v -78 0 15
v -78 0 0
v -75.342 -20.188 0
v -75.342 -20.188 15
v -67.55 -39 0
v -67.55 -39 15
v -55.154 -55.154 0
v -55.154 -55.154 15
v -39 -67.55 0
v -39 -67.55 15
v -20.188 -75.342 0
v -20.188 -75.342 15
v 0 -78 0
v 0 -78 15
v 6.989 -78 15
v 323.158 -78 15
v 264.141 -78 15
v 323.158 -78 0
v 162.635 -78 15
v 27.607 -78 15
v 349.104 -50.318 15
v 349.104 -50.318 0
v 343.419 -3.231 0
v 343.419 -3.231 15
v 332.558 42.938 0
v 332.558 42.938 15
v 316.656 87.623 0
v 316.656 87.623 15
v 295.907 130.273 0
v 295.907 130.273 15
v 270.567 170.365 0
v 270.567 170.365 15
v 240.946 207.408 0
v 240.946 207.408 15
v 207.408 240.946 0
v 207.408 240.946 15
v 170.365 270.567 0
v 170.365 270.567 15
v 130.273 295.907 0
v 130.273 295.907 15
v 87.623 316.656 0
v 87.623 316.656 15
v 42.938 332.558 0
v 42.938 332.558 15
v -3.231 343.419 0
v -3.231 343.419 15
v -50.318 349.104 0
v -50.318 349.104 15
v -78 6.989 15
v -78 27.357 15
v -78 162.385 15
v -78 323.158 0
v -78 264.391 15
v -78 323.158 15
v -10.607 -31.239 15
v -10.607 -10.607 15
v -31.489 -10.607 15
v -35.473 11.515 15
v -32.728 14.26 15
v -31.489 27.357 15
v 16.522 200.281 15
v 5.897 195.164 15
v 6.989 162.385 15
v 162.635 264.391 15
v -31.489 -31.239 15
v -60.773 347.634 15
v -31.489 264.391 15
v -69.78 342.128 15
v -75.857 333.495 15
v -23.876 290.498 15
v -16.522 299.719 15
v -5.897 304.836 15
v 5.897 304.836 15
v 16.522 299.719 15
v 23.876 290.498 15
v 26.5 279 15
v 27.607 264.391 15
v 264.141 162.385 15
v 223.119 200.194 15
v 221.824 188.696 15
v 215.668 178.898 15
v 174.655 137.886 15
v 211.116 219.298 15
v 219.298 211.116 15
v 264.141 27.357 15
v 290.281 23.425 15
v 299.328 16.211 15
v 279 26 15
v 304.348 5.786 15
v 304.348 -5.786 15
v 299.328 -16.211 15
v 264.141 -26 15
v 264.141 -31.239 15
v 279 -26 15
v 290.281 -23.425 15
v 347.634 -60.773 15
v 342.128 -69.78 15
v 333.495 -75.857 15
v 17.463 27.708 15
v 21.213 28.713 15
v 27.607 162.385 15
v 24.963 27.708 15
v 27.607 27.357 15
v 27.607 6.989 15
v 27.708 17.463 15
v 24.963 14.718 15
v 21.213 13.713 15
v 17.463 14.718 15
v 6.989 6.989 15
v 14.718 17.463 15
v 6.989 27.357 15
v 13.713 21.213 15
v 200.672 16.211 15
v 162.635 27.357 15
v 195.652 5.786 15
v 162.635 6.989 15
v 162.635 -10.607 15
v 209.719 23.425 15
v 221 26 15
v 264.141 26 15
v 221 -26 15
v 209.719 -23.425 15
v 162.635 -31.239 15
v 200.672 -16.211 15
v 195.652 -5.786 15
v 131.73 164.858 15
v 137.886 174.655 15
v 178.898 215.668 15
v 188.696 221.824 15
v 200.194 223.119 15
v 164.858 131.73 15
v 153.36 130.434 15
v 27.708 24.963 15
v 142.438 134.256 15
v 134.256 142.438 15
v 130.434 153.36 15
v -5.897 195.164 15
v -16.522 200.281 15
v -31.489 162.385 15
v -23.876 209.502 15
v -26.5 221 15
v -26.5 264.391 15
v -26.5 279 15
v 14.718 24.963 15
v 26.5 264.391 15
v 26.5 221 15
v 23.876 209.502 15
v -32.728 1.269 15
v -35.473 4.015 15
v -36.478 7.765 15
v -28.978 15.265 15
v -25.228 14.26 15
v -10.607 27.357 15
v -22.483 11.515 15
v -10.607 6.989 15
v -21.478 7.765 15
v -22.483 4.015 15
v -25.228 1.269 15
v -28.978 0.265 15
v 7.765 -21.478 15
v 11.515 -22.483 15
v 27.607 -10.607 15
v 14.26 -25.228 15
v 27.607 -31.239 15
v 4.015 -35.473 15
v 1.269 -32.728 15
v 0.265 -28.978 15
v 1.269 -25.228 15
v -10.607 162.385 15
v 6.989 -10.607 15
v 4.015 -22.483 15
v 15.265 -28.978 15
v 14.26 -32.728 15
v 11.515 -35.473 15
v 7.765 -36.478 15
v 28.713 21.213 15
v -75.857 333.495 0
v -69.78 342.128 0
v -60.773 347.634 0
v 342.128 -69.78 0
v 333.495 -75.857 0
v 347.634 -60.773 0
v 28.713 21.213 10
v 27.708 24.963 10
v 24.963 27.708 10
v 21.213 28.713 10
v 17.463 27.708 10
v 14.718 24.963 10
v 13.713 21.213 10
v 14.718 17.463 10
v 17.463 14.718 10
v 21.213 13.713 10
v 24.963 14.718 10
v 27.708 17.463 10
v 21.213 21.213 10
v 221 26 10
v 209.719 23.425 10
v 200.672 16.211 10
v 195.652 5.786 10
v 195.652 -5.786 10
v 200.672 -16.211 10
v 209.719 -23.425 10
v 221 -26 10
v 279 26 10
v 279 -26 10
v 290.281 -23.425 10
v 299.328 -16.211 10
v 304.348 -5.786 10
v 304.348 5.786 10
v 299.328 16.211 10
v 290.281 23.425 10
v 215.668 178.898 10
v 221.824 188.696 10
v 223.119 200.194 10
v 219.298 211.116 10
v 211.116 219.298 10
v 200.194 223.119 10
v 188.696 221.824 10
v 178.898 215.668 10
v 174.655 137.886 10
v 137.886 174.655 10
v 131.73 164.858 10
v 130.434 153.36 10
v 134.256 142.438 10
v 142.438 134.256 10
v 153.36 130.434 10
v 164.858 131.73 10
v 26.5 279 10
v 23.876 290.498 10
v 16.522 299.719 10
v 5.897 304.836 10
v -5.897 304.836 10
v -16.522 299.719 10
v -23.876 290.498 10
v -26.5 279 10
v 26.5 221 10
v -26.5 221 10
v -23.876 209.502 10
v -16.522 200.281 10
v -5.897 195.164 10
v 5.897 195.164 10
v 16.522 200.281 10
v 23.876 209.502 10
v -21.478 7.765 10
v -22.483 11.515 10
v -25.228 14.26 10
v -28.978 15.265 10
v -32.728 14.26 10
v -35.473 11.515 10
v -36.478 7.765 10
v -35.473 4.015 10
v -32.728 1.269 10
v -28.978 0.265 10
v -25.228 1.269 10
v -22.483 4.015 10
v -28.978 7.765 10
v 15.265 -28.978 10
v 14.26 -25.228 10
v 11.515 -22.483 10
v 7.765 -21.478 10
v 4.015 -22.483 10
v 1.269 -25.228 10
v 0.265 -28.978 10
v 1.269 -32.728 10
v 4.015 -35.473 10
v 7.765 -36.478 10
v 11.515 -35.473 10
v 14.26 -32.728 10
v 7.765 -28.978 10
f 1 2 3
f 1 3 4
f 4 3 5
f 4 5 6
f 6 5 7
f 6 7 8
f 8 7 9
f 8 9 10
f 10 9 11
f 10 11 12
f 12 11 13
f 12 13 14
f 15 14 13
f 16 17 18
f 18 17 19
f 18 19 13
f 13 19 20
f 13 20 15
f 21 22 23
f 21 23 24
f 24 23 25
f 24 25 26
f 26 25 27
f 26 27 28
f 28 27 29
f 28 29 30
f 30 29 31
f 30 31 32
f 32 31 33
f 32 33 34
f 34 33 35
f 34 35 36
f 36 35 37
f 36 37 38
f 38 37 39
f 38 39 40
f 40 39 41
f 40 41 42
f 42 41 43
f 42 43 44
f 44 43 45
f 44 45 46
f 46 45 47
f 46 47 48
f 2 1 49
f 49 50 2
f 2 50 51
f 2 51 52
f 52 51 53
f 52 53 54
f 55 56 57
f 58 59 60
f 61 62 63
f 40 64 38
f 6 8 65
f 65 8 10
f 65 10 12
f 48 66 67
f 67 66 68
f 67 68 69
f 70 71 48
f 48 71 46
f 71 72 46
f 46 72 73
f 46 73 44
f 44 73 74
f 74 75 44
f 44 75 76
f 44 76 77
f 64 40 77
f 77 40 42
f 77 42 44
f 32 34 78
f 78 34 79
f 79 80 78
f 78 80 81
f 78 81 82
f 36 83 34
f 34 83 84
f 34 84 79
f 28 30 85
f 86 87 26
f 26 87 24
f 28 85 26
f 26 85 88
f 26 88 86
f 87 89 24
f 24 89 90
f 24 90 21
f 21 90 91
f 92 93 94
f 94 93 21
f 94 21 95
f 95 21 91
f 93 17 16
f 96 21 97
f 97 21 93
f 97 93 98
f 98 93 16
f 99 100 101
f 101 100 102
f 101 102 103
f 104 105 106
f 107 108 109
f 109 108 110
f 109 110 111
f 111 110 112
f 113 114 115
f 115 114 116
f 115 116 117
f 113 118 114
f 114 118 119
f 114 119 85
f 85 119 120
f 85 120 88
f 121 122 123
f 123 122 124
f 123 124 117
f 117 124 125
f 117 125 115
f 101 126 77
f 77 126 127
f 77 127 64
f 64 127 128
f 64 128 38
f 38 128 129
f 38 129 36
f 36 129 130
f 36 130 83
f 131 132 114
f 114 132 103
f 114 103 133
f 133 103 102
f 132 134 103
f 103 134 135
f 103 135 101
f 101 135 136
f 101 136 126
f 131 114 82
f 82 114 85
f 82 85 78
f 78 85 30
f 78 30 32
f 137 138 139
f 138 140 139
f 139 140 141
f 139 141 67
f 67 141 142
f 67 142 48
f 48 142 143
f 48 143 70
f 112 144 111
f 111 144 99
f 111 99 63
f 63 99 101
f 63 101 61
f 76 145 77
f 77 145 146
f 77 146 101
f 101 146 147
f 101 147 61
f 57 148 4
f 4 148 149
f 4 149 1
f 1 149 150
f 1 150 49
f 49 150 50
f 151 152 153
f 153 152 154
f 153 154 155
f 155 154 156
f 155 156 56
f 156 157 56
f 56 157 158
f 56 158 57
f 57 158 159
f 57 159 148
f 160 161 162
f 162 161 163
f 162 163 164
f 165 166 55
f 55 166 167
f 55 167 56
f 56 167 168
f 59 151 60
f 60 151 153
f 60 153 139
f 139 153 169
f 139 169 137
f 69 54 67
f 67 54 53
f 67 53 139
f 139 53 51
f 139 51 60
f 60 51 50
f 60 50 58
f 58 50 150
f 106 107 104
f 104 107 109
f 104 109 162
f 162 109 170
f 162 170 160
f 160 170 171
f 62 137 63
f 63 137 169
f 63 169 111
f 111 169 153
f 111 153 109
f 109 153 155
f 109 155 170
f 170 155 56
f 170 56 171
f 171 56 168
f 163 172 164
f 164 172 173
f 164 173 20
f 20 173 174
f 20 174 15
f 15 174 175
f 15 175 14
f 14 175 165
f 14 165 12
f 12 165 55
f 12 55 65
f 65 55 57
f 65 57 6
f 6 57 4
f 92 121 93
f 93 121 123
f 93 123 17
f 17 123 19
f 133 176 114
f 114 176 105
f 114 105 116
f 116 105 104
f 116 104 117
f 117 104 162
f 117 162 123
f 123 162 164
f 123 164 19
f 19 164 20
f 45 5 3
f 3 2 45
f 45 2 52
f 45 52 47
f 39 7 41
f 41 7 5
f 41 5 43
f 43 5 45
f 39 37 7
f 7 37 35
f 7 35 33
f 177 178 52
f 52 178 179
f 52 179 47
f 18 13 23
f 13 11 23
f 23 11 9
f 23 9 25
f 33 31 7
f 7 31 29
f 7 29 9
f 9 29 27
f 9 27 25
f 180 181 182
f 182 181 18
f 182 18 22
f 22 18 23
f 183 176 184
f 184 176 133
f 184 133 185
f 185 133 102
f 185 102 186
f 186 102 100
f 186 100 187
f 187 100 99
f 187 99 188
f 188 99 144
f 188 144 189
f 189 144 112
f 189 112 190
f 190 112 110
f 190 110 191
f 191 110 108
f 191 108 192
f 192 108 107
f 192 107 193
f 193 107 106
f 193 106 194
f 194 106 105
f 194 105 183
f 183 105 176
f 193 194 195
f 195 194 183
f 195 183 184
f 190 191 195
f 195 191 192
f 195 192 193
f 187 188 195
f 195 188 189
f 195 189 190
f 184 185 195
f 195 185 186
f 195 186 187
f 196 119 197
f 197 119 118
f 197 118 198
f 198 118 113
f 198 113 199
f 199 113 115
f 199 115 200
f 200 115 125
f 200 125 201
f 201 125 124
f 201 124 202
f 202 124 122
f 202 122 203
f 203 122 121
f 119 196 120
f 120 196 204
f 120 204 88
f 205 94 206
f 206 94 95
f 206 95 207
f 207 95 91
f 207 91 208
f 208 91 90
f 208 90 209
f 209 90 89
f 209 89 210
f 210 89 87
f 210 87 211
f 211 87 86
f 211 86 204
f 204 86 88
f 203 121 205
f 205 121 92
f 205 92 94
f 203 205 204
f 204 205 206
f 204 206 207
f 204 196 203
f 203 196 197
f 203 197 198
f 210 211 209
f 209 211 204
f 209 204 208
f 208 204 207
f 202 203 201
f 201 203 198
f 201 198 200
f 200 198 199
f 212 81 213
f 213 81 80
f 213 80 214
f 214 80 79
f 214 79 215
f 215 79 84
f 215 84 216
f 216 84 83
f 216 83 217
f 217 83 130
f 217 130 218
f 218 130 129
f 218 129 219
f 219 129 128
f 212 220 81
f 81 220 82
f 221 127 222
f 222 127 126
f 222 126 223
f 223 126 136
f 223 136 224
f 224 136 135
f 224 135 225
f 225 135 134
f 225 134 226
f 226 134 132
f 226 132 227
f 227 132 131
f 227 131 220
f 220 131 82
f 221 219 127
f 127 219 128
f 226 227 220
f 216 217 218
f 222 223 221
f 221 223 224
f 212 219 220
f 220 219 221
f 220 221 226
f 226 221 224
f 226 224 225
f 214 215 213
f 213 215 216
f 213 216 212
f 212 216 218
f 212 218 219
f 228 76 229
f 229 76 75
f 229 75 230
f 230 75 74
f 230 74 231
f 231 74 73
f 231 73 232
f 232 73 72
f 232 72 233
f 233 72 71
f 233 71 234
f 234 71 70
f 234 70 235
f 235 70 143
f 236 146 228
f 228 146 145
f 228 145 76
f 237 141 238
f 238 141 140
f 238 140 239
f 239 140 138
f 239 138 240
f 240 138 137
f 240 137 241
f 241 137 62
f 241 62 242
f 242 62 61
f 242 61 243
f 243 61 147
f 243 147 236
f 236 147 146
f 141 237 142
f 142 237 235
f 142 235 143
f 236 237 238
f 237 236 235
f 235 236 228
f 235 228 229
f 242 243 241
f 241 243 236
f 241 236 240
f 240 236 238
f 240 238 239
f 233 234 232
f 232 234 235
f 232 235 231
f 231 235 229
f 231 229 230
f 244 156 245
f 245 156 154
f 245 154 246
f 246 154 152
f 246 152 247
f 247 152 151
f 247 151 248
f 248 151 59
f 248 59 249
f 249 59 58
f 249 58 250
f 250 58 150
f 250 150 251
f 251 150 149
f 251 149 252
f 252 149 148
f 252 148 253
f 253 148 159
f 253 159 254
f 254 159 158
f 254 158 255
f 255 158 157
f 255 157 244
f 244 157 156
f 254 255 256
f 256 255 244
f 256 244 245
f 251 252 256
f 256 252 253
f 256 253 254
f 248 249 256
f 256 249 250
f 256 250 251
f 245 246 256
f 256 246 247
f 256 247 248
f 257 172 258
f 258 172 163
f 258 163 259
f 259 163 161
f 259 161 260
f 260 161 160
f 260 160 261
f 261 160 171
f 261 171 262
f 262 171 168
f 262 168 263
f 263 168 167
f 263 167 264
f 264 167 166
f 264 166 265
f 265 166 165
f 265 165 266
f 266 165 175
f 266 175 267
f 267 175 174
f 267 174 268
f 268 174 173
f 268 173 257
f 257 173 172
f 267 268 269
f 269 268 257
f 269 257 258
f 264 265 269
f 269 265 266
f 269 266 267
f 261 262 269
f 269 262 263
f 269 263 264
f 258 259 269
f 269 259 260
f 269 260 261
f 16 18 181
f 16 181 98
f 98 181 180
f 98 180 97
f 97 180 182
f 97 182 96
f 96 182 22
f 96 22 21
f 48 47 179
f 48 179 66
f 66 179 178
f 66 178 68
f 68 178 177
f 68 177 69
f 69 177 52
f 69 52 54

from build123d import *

# Parameters (mm, degrees)
Y_KSEKLIK_EKSTR_ZYON1_DEPTH = 15
IZIM2_R                     = 7.5
KES_EKSTR_ZYON1_DEPTH       = 5
RADYUS1_R                   = 26


with BuildPart() as part:
    # Çizim1 → Yükseklik-Ekstrüzyon1 (new body)
    with BuildSketch(Plane.XY):
        with BuildLine():
            Line((-78, 0), (-78, 350))
            ThreePointArc((-78, 350), (224.641702348, 224.641702348), (350, -78))
            Line((350, -78), (0, -78))
            ThreePointArc((0, -78), (-55.154328933, -55.154328933), (-78, 0))
        make_face()
    extrude(amount=Y_KSEKLIK_EKSTR_ZYON1_DEPTH)

    # Çizim2 → Kes-Ekstrüzyon1 (cut)
    with BuildSketch(Plane.XY.offset(15)):
        with Locations((21.213203436, 21.213203436)):
            Circle(IZIM2_R)
        with Locations((7.764571353, -28.977774789)):
            Circle(IZIM2_R)
        with Locations((-28.977774789, 7.764571353)):
            Circle(IZIM2_R)
        with BuildLine():
            Line((26.5, 279), (26.5, 221))
            ThreePointArc((26.5, 221), (0, 194.5), (-26.5, 221))
            Line((-26.5, 221), (-26.5, 279))
            ThreePointArc((-26.5, 279), (0, 305.5), (26.5, 279))
        make_face()
        with BuildLine():
            Line((215.667568262, 178.89801564), (174.655374953, 137.885822331))
            ThreePointArc((174.655374953, 137.885822331), (137.885822331, 137.885822331), (137.885822331, 174.655374953))
            Line((137.885822331, 174.655374953), (178.89801564, 215.667568262))
            ThreePointArc((178.89801564, 215.667568262), (215.667568262, 215.667568262), (215.667568262, 178.89801564))
        make_face()
        with BuildLine():
            Line((221, 26), (279, 26))
            ThreePointArc((279, 26), (305, 0), (279, -26))
            Line((279, -26), (221, -26))
            ThreePointArc((221, -26), (195, 0), (221, 26))
        make_face()
    extrude(amount=-KES_EKSTR_ZYON1_DEPTH, mode=Mode.SUBTRACT)

    # Radyus1
    radyus1_edges = [part.edges().sort_by_distance(p)[0] for p in [
        (-78, 350, 7.5),
        (350, -78, 7.5),
    ]]
    fillet(radyus1_edges, radius=RADYUS1_R)


solid = part.part
